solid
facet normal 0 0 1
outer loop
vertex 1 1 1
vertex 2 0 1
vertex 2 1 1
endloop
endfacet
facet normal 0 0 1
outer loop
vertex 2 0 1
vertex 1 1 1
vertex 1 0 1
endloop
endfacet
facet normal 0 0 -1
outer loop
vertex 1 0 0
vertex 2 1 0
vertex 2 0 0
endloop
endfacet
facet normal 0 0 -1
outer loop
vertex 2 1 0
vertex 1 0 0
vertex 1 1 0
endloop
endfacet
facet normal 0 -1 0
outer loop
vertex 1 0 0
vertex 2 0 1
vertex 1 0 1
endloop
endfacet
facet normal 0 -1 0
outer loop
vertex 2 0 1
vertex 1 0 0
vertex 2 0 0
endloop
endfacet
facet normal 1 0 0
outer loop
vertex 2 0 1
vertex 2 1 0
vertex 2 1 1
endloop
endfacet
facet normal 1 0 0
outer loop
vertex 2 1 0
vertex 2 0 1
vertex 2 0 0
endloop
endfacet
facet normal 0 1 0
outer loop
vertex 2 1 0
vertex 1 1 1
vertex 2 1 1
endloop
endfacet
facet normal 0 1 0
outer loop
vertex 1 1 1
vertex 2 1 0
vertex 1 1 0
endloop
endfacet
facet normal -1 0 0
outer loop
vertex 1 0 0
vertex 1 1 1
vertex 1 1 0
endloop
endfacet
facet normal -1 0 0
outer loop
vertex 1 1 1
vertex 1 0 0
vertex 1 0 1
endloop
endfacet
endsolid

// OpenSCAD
// cube(1);

// translate([0.5, 0, 0]) {
//     cube(1);
// }

translate([1, 0, 0]) {
    cube(1);
}

// translate([1.5, 0, 0]) {
//     cube(1);
// }
